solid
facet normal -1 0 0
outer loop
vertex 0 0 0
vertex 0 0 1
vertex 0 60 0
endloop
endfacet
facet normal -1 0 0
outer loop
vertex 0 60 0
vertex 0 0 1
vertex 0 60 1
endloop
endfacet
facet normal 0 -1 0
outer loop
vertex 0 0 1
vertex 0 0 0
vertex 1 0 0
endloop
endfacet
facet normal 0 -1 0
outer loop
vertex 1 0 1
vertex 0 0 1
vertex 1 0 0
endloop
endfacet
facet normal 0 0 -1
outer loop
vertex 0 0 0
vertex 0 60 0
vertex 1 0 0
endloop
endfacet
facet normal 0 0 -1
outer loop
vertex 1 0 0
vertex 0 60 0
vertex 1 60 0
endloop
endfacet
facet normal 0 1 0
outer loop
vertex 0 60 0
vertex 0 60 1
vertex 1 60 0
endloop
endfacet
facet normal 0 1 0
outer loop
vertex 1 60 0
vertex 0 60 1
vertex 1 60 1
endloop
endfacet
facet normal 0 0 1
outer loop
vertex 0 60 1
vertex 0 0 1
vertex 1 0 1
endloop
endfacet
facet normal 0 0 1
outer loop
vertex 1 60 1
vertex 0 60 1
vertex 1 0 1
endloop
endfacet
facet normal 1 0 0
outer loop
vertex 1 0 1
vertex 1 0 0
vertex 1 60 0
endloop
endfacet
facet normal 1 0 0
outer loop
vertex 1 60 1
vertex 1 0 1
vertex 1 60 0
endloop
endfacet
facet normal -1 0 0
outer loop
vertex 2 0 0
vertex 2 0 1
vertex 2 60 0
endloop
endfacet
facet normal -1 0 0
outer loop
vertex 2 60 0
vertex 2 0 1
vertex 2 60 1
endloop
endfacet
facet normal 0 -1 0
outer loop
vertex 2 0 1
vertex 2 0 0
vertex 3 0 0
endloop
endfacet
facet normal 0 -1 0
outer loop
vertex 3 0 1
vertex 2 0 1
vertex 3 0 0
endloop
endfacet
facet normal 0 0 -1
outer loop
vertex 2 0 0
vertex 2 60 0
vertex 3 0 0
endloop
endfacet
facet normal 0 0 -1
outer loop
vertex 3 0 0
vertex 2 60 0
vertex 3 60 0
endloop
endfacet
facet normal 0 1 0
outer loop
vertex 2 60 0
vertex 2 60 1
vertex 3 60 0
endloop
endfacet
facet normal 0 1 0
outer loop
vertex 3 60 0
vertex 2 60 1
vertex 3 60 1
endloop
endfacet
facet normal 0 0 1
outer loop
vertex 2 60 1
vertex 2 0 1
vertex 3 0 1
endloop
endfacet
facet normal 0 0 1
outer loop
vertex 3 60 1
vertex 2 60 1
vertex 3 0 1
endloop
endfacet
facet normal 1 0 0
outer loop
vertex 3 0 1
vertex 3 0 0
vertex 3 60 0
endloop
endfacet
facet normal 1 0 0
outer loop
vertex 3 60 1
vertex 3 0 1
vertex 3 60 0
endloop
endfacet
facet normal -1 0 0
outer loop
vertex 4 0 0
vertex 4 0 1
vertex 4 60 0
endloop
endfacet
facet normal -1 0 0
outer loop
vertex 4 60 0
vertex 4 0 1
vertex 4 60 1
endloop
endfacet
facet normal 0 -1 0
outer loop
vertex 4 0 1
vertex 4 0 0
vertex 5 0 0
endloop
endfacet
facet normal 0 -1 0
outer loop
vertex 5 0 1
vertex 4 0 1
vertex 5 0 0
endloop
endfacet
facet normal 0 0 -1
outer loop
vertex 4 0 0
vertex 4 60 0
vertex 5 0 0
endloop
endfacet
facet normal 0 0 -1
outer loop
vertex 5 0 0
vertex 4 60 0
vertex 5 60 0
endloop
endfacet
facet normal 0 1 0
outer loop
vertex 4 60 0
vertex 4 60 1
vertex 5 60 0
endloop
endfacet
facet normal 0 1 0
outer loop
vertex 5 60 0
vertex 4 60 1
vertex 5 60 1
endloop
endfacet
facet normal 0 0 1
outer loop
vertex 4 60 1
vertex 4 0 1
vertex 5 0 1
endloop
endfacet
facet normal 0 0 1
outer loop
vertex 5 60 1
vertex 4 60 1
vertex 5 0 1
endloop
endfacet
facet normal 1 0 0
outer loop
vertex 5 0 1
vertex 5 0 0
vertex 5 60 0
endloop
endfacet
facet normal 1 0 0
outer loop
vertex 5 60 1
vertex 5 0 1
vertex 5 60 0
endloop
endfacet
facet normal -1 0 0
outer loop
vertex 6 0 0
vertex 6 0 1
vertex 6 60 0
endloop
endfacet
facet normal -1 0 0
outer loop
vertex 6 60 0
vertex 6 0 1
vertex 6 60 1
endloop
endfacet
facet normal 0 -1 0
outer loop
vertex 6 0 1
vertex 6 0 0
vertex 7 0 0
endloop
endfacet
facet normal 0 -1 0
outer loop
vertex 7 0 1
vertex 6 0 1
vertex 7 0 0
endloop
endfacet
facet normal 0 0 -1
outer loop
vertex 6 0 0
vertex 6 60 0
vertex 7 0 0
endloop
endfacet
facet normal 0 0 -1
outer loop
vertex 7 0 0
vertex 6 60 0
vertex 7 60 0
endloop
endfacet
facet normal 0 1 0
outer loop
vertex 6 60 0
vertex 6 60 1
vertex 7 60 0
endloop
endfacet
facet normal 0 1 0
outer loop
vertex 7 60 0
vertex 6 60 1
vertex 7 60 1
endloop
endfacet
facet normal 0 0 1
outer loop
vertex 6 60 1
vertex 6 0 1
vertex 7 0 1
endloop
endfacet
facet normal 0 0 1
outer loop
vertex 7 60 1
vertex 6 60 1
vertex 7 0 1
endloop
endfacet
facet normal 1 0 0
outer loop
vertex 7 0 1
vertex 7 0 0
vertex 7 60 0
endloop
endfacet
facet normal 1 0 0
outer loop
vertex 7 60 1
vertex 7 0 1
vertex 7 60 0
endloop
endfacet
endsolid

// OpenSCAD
// file: ../../helpers/helpers.scad
module modSlot(translate, rotate, size, slack, shipOrModule) {
	
		realSlack = shipOrModule == false ? slack : -slack;

		newSize = [size[0] + realSlack, size[1] + realSlack, size[2] + realSlack];

	translate(translate)
	rotate(rotate)
		cube(size=newSize, center= true);
}

module wingSlot(translate, rotate, size, slack, shipOrModule) {
	modSlot(translate, rotate, size, slack, shipOrModule);
}

module engineSlot(translate, rotate, size, slack, shipOrModule) {
	modSlot(translate, rotate, size, slack, shipOrModule);
}

module poleSlot(translate, rotate, size, slack, shipOrModule) {
	modSlot(translate, rotate, size, slack, shipOrModule);
}
// main file
// licensed under the Creative Commons - GNU GPL license.

use <../../helpers/helpers.scad>

module load() {
	union() {
		cube([1,60,1]);
	
		translate([2,0,0]){
			cube([1,60,1]);
		}
		translate([4,0,0]){
			cube([1,60,1]);
		}
		translate([6,0,0]){
			cube([1,60,1]);
		}
	}
}

load();
